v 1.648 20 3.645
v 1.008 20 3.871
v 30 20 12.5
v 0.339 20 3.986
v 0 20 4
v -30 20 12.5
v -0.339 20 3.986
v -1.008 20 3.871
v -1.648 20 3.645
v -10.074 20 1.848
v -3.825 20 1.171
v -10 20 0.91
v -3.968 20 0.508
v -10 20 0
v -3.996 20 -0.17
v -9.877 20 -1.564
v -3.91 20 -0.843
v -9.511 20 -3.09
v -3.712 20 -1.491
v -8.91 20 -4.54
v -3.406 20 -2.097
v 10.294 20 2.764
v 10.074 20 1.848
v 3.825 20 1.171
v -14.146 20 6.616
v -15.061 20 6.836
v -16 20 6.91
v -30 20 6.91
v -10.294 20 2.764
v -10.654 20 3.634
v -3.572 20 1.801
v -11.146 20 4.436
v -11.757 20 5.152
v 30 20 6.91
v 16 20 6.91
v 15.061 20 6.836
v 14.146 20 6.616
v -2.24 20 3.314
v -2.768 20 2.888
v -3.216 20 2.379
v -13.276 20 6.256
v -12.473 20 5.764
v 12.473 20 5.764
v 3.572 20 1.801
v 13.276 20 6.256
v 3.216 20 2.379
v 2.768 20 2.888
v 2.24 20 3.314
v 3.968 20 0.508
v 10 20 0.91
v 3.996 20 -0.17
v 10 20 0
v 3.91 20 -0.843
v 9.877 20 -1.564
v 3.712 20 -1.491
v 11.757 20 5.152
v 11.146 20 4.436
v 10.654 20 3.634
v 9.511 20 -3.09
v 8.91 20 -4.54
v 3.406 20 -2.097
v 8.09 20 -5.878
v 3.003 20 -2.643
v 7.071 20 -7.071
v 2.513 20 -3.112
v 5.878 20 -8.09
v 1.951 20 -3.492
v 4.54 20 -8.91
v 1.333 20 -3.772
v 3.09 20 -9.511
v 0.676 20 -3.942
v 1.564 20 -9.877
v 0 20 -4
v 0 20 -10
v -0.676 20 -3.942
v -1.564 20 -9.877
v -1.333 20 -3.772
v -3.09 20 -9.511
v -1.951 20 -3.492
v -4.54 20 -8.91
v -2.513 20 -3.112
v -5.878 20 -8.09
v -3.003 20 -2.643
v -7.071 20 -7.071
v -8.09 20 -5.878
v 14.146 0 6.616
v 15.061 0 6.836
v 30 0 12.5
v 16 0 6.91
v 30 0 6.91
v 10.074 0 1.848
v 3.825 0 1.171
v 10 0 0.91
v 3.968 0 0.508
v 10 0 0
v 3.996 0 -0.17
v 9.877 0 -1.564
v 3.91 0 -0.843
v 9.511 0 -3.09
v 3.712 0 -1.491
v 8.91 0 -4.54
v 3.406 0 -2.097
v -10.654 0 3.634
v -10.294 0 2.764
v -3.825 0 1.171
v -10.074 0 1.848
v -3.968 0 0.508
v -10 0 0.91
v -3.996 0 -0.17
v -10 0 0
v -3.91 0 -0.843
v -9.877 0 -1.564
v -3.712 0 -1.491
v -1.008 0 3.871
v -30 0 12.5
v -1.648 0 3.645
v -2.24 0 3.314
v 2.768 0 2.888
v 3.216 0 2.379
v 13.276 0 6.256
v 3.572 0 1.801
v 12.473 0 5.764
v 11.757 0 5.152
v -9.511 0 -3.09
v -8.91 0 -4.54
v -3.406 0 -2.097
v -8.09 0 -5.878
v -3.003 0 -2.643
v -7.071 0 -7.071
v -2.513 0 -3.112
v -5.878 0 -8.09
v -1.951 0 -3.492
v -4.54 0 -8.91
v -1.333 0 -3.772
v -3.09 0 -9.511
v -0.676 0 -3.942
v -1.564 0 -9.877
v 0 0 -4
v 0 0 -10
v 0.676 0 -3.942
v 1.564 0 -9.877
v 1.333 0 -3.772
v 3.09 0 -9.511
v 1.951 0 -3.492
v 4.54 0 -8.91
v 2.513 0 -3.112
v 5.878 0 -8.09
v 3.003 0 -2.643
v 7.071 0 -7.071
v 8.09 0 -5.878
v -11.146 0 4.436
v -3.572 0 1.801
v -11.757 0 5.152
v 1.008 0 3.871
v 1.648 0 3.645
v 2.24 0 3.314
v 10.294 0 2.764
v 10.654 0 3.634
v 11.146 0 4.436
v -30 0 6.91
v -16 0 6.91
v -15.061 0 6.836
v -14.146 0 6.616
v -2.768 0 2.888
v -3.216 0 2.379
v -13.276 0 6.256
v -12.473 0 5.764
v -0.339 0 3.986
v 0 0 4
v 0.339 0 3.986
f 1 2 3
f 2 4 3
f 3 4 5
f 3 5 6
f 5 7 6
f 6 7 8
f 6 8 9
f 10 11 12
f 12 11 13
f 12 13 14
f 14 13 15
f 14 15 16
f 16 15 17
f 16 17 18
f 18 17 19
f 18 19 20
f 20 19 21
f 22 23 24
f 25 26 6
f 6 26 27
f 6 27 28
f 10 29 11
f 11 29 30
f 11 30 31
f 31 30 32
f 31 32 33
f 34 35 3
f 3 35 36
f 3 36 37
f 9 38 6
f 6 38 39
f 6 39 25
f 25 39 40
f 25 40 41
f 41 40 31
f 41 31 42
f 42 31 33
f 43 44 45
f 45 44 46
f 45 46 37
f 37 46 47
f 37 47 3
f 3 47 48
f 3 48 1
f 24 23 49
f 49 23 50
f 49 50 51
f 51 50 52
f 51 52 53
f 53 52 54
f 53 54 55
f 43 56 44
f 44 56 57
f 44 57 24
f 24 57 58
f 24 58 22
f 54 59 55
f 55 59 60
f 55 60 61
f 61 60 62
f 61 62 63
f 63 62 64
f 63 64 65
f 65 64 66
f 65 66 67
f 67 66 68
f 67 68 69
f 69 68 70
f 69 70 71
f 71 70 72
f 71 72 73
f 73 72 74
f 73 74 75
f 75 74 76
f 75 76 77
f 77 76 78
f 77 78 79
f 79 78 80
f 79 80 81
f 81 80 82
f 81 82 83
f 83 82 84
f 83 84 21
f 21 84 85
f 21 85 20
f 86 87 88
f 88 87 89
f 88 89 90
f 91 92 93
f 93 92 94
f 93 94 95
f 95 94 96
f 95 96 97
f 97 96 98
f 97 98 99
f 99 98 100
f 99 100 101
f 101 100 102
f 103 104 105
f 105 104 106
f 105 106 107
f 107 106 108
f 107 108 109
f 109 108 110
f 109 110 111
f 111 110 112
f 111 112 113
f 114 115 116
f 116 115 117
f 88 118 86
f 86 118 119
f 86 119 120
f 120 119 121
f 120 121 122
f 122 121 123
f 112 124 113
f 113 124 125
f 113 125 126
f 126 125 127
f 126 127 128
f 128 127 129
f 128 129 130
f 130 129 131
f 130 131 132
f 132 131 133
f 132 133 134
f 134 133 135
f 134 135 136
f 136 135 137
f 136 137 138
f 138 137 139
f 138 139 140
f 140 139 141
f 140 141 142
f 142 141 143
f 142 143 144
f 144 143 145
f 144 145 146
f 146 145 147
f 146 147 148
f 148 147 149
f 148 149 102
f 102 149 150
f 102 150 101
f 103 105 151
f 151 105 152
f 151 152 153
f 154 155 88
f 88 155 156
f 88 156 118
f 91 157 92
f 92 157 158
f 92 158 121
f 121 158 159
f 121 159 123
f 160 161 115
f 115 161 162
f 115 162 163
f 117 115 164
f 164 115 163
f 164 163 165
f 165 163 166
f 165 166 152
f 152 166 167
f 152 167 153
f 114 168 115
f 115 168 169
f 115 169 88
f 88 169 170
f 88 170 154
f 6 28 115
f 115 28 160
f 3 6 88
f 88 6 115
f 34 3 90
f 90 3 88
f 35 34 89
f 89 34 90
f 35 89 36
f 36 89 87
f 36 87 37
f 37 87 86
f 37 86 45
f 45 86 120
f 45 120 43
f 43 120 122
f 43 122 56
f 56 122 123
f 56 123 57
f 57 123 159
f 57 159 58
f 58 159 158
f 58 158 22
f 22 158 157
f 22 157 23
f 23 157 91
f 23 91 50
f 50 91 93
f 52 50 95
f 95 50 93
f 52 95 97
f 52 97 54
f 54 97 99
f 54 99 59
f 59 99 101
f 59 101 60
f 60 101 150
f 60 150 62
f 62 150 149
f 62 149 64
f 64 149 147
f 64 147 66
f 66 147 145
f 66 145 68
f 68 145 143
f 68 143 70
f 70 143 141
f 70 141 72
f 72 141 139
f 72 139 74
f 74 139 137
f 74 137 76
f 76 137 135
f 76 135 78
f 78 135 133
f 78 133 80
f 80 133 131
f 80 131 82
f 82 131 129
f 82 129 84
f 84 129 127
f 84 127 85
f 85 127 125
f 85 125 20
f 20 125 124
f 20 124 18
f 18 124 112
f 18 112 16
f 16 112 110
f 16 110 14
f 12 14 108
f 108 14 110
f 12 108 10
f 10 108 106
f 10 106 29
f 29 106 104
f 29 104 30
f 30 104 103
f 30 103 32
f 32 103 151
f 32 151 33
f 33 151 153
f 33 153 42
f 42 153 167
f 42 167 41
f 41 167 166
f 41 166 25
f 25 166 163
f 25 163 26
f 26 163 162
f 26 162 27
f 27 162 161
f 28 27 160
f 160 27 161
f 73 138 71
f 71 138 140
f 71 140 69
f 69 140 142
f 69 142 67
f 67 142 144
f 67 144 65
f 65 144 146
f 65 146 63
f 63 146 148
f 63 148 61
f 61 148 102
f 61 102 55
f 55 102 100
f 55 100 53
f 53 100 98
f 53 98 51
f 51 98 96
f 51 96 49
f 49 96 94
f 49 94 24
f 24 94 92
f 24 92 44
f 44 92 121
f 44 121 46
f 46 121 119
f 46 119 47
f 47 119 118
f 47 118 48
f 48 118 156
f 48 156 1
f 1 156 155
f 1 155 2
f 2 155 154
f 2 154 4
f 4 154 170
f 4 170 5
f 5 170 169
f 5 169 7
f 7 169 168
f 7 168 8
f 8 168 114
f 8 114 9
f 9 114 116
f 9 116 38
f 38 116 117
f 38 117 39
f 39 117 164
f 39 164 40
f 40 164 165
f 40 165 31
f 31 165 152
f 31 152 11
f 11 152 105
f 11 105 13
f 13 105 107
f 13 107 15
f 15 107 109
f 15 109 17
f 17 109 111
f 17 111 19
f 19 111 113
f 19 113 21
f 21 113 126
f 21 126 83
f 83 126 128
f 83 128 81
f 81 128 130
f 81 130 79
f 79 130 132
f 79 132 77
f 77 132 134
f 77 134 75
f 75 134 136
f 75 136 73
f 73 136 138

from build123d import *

# Parameters (mm, degrees)
SKETCH1_R           = 4
BOSS_EXTRUDE1_DEPTH = 20


with BuildPart() as part:
    # Sketch1 → Boss-Extrude1 (new body)
    with BuildSketch(Plane(origin=(0, 0, 0), x_dir=(1, 0, 0), z_dir=(0, 1, 0))):
        with BuildLine():
            Line((30, -12.5), (-30, -12.5))
            Line((-30, -12.5), (-30, -6.90963498))
            Line((-30, -6.90963498), (-16, -6.90963498))
            ThreePointArc((-16, -6.90963498), (-11.757359313, -5.152275667), (-10, -0.90963498))
            Line((-10, -0.90963498), (-10, 0))
            ThreePointArc((-10, 0), (0, 10), (10, 0))
            Line((10, 0), (10, -0.90963498))
            ThreePointArc((10, -0.90963498), (11.757359313, -5.152275667), (16, -6.90963498))
            Line((16, -6.90963498), (30, -6.90963498))
            Line((30, -6.90963498), (30, -12.5))
        make_face()
        with Locations(Location((0, 0, 0), (0, 0, 270))):
            Circle(SKETCH1_R, mode=Mode.SUBTRACT)
    extrude(amount=BOSS_EXTRUDE1_DEPTH)


solid = part.part
